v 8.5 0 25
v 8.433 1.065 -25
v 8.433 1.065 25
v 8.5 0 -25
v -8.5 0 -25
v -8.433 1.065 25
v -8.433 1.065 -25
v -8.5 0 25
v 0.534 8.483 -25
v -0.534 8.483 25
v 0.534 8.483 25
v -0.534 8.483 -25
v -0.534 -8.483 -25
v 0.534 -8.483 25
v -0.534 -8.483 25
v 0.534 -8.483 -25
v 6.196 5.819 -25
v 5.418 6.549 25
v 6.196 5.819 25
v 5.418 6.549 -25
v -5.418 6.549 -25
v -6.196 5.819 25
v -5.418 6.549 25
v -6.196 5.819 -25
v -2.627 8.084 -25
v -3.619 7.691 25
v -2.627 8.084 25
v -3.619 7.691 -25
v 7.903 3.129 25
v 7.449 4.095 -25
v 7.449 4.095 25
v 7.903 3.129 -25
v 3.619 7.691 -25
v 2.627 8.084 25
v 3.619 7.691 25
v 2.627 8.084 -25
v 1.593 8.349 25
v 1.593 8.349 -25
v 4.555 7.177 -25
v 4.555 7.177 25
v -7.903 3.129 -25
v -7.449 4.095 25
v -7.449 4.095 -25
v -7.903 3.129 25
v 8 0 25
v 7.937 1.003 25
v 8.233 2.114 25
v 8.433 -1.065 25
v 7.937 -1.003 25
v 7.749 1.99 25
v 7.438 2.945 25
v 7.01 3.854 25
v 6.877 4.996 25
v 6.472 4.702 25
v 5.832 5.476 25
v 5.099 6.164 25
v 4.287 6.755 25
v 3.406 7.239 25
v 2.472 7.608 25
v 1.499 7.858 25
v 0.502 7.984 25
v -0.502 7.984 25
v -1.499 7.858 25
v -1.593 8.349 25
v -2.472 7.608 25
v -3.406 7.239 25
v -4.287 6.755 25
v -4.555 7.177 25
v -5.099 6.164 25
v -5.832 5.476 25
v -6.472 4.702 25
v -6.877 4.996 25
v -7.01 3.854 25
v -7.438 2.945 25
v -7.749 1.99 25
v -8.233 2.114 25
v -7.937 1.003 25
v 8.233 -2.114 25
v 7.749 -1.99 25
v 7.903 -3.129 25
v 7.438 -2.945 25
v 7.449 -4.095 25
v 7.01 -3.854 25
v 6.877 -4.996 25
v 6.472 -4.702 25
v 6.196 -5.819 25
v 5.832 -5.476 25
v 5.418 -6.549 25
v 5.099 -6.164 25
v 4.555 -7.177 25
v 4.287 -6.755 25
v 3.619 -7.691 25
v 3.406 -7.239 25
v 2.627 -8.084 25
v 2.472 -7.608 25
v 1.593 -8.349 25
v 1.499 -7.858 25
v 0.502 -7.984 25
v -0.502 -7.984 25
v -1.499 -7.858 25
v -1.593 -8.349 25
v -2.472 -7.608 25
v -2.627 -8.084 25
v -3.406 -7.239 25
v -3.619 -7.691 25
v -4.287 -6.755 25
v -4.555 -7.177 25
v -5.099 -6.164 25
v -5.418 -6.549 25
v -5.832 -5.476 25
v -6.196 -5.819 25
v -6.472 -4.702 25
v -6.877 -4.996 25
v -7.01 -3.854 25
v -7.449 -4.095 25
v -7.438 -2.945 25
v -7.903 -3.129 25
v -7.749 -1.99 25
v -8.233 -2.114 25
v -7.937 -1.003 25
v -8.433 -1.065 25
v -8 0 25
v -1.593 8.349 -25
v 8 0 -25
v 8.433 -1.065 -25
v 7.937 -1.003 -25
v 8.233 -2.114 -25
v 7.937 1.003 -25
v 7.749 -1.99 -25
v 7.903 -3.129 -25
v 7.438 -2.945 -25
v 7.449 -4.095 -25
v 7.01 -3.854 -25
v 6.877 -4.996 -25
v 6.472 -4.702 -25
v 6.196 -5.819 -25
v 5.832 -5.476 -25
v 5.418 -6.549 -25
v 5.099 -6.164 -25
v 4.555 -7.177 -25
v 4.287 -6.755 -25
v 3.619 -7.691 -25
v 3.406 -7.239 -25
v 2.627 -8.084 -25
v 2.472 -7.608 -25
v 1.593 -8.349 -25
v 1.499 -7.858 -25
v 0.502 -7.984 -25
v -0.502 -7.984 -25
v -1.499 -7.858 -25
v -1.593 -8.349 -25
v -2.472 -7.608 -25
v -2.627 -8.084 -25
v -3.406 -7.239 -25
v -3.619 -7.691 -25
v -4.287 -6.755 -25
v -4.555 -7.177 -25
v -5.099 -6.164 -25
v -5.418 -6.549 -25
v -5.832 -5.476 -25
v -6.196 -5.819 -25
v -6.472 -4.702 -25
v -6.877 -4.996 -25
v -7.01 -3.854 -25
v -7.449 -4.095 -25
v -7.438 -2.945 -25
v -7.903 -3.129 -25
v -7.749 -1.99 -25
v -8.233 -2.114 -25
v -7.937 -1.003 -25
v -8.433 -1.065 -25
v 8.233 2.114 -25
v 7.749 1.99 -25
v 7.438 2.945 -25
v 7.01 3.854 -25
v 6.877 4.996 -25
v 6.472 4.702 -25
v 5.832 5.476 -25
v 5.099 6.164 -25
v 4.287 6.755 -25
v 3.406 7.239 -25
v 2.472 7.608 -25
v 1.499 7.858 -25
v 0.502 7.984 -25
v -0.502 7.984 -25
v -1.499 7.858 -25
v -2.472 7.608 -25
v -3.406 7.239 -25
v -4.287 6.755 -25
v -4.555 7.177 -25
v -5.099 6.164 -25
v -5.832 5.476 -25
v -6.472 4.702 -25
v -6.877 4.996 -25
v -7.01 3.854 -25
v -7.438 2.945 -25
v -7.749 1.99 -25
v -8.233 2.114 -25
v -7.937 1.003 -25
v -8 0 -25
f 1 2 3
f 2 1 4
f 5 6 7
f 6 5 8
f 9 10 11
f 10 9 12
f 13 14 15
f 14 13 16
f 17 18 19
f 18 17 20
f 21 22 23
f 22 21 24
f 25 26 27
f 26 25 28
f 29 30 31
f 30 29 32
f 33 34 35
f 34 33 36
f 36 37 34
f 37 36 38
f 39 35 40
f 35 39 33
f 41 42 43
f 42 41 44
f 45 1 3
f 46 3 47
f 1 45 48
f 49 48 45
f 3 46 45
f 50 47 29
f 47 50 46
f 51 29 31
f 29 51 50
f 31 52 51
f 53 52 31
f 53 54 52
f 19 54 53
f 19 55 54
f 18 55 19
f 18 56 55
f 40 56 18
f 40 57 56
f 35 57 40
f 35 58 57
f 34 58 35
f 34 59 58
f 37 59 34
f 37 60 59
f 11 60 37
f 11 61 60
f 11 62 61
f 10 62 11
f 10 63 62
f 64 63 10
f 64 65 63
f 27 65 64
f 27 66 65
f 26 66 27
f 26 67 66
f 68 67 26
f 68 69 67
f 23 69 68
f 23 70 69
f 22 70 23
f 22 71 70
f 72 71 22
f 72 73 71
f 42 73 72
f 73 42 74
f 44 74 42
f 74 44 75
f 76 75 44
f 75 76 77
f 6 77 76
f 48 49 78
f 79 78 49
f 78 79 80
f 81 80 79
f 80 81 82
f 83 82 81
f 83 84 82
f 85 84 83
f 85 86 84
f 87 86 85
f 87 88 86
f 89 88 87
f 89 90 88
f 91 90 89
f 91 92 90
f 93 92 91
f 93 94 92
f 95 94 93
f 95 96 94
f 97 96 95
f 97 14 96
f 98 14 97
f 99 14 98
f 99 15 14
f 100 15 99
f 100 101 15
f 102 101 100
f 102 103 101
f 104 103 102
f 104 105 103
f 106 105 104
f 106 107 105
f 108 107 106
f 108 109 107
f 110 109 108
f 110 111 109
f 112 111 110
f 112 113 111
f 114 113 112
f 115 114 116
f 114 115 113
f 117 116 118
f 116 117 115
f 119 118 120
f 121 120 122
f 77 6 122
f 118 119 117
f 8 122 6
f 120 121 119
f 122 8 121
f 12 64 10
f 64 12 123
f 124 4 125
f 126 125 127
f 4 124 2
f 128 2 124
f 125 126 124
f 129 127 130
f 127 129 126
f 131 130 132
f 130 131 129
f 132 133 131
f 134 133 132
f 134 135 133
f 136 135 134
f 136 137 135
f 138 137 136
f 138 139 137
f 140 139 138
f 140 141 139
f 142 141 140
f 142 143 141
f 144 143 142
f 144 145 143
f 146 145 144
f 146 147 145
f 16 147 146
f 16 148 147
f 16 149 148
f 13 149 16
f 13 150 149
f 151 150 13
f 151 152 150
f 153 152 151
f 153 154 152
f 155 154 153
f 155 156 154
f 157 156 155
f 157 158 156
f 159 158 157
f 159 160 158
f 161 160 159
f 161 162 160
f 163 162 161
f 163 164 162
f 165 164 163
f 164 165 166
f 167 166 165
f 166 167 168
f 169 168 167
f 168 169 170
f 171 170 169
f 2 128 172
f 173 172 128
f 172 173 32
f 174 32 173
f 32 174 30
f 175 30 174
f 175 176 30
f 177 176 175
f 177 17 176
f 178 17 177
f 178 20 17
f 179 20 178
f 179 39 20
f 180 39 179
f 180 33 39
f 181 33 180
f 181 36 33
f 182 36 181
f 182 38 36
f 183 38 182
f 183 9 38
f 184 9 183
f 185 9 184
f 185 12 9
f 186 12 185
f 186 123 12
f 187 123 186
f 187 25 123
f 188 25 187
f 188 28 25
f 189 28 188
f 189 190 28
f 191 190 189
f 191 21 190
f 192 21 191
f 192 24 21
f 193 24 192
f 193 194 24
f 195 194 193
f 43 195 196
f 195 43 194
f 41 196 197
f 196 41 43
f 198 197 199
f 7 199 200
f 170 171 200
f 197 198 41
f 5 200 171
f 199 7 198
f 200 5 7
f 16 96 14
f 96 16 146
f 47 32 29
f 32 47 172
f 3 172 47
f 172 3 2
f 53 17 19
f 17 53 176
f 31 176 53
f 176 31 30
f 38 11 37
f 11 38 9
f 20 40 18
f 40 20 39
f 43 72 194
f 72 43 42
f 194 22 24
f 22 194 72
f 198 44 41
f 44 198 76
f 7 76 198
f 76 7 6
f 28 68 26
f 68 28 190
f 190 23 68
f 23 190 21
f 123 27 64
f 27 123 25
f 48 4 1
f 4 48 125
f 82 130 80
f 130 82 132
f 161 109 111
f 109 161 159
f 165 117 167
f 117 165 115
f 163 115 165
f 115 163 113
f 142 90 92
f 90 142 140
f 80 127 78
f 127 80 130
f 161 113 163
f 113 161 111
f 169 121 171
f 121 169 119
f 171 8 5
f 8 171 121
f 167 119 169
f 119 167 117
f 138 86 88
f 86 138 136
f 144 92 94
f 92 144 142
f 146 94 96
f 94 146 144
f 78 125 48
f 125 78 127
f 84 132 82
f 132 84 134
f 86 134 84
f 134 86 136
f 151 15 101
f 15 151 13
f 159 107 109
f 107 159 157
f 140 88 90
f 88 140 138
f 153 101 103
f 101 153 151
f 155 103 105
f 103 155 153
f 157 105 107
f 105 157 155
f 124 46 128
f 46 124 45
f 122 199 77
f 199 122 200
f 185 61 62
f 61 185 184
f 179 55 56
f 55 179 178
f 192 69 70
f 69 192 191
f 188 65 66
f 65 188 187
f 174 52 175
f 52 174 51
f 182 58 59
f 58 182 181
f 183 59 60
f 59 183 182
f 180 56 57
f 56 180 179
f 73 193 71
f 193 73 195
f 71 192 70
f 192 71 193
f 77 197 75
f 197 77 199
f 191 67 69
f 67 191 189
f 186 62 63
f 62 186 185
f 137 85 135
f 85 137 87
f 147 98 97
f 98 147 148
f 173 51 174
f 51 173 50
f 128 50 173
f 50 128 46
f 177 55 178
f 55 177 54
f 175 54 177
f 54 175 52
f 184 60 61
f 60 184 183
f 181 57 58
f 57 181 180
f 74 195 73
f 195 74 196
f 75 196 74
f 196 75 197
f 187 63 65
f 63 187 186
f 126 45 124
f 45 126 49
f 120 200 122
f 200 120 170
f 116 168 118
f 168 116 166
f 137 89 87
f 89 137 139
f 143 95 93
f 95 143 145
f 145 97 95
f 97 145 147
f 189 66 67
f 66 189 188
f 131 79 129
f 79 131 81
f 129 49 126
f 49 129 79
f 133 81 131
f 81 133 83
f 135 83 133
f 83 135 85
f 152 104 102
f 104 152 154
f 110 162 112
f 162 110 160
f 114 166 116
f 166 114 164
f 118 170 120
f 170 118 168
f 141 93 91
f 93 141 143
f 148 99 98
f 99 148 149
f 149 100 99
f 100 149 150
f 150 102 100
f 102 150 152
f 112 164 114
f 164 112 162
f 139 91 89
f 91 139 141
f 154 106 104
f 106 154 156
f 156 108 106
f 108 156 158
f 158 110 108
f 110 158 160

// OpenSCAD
$fn = 50;


difference() {
	union() {
		translate(v = [0, 0, -25.0000000000]) {
			cylinder(h = 50, r = 8.5000000000);
		}
	}
	union() {
		translate(v = [0, 0, -100.0000000000]) {
			cylinder(h = 200, r = 8);
		}
	}
}
